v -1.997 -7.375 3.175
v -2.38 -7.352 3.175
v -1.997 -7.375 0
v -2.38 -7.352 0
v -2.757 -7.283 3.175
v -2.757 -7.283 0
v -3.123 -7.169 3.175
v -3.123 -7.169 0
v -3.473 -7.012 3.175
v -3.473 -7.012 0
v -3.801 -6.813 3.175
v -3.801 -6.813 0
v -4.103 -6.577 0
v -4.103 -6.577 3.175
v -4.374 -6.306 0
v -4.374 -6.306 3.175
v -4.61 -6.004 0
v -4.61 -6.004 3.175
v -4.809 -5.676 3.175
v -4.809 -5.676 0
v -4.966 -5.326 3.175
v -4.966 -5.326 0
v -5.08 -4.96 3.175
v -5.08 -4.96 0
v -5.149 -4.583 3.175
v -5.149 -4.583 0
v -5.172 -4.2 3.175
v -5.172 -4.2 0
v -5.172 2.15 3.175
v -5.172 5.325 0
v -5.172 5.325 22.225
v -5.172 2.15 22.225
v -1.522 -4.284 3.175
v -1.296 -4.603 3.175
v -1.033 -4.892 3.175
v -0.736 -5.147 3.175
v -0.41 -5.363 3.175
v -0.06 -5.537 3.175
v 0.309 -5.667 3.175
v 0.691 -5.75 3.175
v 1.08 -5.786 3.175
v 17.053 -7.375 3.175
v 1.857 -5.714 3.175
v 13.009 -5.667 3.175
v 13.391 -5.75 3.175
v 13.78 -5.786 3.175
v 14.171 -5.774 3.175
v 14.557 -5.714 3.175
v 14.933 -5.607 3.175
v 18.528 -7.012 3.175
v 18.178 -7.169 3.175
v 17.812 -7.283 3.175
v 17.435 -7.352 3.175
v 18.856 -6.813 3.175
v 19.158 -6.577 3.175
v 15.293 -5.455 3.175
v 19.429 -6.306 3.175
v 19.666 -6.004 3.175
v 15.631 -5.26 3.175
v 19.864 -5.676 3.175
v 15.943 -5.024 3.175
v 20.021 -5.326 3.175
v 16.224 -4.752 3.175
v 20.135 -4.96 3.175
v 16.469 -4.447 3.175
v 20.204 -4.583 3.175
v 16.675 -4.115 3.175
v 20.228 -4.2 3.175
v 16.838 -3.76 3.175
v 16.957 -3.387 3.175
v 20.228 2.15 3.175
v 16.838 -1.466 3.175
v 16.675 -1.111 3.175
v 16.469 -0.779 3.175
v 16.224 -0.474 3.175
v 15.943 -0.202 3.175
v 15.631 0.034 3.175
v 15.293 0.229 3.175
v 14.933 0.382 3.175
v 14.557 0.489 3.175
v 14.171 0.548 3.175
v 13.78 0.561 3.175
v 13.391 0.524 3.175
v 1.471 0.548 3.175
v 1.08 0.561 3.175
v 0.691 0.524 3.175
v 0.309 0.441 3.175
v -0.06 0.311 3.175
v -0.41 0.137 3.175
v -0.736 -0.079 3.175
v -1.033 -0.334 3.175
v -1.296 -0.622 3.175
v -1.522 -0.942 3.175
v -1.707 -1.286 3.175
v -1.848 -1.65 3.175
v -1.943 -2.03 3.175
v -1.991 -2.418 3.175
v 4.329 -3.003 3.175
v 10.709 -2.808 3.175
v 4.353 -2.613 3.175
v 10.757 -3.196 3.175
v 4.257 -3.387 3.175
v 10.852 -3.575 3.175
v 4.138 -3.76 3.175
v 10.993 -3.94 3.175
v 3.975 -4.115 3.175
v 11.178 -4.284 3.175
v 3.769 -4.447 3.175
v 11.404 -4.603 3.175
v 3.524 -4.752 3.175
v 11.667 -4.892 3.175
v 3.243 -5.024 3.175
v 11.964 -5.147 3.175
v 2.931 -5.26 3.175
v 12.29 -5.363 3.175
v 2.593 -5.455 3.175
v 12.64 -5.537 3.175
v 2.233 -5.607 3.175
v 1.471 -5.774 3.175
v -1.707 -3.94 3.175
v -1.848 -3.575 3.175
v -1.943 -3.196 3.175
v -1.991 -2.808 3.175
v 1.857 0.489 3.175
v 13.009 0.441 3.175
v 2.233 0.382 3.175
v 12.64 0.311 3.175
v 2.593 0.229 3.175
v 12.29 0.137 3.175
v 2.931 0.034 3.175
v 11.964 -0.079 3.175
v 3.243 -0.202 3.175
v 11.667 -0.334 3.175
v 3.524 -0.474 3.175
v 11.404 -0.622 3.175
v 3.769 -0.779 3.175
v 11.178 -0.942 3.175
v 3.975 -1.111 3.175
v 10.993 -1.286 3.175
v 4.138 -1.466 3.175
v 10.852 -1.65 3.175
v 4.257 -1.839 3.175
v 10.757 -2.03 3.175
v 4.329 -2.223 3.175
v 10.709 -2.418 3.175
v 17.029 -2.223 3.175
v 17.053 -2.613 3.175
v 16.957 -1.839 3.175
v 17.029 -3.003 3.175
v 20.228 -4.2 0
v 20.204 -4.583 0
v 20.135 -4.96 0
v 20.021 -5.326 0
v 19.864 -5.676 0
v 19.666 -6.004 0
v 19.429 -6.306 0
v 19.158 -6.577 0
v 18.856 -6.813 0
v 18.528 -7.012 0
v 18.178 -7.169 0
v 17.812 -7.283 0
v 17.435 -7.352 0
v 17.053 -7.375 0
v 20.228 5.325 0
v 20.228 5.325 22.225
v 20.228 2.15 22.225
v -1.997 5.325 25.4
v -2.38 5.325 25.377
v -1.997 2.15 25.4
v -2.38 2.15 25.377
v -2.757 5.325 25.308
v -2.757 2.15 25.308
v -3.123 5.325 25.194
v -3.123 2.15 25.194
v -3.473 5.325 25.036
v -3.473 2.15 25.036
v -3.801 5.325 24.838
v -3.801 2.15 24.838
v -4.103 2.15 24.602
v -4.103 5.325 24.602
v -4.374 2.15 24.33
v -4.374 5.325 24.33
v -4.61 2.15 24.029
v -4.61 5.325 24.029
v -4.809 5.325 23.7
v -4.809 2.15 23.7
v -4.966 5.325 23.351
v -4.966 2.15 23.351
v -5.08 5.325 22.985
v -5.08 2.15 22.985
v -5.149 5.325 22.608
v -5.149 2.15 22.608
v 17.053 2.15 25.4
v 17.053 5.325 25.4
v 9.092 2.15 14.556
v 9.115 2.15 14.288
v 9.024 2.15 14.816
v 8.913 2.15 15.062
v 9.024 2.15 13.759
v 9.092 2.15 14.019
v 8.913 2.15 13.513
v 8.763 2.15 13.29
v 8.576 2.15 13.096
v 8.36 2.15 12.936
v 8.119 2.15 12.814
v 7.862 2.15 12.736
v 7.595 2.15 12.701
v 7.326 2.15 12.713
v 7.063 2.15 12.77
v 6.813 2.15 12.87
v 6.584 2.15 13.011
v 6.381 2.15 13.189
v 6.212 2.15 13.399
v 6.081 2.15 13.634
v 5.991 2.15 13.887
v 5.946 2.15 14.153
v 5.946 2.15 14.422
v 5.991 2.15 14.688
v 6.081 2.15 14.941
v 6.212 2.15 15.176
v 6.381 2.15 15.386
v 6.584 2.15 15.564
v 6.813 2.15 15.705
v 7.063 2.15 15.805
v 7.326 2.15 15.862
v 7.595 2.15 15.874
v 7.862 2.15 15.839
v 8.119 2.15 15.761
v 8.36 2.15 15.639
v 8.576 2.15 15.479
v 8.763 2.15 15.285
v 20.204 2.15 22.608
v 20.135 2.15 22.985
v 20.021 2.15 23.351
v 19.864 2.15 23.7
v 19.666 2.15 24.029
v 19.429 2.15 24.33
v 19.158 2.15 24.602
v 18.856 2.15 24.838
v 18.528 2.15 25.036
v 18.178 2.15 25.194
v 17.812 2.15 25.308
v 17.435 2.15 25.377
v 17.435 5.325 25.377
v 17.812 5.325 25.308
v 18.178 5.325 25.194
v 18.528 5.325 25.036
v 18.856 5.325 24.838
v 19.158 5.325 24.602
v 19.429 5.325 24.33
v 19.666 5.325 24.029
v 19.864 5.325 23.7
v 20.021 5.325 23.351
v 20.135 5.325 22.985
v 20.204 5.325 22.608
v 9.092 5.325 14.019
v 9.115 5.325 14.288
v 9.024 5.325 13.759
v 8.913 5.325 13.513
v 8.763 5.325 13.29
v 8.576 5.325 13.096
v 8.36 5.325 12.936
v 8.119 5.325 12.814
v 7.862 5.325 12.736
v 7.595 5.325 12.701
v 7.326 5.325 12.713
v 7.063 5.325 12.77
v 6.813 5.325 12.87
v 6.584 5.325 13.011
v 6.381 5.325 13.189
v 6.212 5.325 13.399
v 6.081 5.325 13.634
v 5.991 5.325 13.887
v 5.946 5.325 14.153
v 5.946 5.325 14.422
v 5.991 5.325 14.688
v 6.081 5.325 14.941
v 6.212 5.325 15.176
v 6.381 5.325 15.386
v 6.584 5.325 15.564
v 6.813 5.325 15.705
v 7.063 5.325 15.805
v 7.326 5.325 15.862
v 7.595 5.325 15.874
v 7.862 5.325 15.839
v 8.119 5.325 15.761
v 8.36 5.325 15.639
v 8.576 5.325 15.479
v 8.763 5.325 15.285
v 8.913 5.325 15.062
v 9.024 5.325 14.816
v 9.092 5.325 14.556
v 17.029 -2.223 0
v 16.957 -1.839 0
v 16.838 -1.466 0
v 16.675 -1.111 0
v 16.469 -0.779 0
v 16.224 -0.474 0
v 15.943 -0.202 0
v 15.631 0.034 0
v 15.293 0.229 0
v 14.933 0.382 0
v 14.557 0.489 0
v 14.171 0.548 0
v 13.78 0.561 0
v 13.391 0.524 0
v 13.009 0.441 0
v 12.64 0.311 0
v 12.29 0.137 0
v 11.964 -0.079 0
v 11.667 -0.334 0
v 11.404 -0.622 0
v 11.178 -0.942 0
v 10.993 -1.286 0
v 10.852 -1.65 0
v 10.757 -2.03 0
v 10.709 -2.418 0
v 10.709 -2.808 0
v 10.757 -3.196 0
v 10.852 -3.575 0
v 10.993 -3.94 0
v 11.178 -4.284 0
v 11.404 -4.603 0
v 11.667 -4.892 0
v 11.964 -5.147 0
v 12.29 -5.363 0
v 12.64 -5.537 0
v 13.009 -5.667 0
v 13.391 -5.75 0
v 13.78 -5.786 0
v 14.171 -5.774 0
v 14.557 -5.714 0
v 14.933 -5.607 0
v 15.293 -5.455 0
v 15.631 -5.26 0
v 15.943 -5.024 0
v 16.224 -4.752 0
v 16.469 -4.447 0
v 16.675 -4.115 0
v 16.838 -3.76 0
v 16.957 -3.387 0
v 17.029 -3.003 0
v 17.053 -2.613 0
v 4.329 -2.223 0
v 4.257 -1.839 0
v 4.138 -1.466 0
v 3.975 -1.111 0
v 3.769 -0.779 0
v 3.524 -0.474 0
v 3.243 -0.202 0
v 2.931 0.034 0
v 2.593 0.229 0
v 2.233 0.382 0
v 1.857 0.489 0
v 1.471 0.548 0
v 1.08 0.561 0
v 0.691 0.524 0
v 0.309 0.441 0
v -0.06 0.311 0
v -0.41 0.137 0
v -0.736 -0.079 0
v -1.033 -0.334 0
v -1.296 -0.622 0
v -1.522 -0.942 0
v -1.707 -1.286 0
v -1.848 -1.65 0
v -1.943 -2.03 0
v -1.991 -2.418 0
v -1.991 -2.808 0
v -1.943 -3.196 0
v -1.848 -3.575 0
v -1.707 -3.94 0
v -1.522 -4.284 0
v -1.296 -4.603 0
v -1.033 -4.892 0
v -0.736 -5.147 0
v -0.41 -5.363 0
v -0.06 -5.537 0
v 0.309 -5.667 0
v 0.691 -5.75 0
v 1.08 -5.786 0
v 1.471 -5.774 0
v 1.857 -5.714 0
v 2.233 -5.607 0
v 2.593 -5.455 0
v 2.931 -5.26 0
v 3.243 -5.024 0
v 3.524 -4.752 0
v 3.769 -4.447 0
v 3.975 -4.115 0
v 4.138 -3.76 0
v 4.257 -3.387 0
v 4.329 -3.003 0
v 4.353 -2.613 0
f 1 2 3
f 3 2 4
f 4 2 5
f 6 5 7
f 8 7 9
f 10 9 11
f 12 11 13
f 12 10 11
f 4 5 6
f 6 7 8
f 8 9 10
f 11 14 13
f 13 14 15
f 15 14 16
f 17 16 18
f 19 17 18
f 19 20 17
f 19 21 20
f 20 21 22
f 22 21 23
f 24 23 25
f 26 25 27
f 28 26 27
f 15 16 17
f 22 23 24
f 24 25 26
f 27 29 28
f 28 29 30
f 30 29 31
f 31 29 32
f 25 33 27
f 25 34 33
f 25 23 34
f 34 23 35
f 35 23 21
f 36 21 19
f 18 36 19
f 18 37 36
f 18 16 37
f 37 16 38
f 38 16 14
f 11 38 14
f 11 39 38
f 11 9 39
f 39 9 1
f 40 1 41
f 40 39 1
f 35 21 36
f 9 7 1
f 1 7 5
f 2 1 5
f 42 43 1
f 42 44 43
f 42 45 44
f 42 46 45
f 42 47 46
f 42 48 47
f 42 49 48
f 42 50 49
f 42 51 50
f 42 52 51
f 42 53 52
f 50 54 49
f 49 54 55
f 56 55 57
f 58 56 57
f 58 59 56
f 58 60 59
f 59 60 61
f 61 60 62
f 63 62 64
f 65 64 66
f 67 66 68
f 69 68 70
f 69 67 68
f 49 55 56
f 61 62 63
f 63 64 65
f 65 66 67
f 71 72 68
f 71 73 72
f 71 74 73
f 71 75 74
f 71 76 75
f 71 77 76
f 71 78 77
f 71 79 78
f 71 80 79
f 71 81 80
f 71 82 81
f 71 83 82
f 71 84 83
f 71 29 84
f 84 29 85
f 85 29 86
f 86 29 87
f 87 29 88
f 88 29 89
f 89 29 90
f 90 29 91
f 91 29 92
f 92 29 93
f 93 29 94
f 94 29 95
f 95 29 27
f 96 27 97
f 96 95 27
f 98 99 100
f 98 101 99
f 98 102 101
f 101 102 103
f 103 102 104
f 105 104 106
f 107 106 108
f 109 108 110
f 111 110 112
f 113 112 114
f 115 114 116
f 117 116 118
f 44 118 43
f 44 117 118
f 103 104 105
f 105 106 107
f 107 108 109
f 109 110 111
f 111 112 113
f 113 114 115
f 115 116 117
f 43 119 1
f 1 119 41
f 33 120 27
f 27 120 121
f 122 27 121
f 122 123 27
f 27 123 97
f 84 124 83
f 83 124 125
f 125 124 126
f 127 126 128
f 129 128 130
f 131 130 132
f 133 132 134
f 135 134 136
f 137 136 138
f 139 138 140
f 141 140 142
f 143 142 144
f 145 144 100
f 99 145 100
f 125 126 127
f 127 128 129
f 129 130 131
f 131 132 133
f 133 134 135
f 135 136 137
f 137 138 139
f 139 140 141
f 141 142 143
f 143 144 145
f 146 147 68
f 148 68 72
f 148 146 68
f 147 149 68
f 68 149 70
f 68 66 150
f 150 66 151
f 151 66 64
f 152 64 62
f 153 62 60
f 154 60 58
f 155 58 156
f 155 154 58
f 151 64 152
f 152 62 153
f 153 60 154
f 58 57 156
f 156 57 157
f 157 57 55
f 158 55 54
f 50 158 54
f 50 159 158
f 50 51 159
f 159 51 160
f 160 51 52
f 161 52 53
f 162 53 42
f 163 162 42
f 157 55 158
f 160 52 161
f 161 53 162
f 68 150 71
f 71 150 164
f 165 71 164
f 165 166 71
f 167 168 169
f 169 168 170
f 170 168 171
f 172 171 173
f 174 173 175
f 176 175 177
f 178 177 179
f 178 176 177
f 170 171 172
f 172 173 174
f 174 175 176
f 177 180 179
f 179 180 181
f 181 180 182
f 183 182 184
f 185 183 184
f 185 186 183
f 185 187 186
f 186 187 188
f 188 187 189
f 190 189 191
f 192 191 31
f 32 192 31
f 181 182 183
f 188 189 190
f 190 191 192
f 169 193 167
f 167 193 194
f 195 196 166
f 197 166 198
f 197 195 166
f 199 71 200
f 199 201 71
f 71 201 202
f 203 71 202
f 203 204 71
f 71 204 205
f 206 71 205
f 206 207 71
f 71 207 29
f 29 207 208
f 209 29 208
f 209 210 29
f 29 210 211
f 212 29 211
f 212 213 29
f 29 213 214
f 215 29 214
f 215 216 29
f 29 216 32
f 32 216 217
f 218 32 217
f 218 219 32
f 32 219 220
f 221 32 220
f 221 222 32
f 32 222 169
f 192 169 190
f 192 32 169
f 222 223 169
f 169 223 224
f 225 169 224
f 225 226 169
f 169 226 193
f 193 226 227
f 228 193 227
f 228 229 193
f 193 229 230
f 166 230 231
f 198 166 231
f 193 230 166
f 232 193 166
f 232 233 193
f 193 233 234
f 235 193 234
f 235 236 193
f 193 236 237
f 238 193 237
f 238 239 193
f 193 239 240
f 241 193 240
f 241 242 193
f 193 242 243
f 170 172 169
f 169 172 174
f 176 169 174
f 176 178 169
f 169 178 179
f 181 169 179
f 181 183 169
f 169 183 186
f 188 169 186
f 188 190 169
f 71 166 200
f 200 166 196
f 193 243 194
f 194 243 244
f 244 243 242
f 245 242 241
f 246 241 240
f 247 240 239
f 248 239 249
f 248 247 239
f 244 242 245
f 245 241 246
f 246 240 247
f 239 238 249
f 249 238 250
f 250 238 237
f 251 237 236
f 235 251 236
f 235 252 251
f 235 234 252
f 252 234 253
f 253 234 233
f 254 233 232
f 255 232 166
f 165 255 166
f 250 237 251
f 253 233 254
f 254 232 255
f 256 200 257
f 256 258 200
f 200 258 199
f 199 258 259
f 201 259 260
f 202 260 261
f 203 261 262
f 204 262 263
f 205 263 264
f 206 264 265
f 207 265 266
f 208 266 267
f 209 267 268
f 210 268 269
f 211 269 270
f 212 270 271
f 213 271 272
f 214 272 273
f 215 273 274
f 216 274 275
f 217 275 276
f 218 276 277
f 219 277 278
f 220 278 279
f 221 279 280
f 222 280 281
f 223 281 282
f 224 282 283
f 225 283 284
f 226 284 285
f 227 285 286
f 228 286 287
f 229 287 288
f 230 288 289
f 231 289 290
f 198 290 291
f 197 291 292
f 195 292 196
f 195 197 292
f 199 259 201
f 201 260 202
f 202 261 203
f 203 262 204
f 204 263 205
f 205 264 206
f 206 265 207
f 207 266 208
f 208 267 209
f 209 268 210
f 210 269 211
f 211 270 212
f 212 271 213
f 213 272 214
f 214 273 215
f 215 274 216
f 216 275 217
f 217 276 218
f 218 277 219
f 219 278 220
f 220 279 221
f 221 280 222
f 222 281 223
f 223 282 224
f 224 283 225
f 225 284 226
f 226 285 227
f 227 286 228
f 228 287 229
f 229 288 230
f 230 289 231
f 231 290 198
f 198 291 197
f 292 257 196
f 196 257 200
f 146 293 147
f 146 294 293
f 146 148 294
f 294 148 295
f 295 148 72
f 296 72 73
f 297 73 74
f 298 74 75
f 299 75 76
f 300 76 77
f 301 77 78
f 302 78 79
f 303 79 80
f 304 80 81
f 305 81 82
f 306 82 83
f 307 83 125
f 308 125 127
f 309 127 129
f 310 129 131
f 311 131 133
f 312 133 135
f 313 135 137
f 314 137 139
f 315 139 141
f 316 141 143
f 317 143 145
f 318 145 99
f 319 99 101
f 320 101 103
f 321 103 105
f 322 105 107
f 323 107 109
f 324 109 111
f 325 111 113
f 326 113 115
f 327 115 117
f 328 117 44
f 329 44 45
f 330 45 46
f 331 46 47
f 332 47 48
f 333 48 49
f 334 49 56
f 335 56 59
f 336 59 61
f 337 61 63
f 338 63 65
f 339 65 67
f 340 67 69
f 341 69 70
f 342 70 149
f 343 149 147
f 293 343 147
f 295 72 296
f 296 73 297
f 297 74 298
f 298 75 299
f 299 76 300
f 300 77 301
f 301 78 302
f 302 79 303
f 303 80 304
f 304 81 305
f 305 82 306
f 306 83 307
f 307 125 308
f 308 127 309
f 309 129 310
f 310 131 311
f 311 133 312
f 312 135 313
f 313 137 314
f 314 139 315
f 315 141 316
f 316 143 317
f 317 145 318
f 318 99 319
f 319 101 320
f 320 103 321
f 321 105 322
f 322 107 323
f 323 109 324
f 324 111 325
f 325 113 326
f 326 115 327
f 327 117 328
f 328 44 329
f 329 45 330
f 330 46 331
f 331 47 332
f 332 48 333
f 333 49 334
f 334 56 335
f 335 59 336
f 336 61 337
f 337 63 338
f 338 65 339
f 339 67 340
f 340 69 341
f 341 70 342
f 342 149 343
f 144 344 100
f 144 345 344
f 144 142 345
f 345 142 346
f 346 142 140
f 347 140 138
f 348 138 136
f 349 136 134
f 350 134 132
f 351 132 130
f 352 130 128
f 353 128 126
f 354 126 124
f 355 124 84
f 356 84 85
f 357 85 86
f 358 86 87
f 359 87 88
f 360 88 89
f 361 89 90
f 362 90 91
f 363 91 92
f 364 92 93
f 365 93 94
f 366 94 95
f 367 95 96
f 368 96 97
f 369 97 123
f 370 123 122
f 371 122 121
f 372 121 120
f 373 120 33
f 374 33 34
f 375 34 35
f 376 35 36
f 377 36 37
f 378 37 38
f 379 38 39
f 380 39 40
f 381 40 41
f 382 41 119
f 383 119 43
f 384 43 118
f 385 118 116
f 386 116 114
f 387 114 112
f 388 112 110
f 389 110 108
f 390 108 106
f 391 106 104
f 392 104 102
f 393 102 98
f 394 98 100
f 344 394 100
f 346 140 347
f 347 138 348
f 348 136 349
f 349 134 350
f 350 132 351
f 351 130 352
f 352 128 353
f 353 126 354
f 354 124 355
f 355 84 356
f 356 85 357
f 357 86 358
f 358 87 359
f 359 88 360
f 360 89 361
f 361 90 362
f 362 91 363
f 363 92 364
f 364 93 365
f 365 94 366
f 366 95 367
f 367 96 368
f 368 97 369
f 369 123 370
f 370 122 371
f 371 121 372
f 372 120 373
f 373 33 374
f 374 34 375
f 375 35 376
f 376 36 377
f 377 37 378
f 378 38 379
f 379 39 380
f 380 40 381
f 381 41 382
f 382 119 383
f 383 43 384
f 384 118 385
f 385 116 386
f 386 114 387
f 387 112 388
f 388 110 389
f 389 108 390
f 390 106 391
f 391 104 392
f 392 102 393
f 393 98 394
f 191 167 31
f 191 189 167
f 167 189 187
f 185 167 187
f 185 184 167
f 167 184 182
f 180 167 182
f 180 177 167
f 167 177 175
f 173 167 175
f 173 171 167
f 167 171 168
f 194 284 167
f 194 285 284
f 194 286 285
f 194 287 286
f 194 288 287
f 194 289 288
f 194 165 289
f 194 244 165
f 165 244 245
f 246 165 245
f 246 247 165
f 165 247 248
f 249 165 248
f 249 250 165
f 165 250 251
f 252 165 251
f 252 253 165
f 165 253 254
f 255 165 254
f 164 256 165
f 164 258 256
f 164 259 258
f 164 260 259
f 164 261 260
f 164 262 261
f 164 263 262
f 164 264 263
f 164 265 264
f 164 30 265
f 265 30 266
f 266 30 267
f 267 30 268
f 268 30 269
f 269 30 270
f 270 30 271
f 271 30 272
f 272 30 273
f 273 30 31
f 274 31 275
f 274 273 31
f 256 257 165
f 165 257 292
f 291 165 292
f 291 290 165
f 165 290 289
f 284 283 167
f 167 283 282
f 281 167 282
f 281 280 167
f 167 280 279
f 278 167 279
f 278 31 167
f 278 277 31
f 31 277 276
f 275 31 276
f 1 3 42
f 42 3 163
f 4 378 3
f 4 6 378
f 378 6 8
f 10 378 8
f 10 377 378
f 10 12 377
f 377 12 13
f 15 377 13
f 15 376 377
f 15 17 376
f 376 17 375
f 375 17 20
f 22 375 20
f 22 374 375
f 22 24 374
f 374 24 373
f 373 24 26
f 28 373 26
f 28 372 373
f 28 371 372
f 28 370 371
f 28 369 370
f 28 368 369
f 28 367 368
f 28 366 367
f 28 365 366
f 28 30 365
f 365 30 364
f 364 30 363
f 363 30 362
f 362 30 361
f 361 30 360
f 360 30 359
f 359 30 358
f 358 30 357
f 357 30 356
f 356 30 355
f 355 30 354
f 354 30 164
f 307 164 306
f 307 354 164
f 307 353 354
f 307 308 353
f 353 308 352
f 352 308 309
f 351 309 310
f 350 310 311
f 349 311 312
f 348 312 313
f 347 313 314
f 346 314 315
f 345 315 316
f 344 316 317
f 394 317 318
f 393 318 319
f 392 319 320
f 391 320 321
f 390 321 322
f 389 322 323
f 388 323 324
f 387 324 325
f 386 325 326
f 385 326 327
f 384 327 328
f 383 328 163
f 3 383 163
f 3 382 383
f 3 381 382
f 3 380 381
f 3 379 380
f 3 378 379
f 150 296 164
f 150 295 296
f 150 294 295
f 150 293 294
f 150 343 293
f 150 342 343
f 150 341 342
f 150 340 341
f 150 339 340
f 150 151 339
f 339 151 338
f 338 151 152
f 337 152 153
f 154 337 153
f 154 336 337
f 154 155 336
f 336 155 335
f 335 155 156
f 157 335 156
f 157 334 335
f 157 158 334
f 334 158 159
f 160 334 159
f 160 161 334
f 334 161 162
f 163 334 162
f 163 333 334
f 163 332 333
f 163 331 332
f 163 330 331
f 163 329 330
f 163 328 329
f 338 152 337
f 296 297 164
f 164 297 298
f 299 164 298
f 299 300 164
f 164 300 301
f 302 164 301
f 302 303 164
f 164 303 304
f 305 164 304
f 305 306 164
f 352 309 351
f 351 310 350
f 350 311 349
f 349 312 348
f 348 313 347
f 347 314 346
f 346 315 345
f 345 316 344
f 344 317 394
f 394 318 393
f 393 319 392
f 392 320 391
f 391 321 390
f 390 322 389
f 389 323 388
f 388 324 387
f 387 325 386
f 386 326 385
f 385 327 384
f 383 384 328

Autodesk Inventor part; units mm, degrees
ref_plane "YZ Plane" through (0, 0, 0) normal (1, 0, 0) x (0, 1, 0)
ref_plane "XZ Plane" through (0, 0, 0) normal (0, 1, 0) x (-1, 0, 0)
ref_plane "XY Plane" through (0, 0, 0) normal (0, 0, 1) x (1, 0, 0)
sketch "Sketch1" plane through (0, 0, 0) normal (0, 0, 1) x (1, 0, 0)
  line L0 (-5.1724, -7.3755) -> (20.2276, -7.3755)
  line L1 (20.2276, -7.3755) -> (20.2276, 5.3245)
  line L2 (20.2276, 5.3245) -> (-5.1724, 5.3245)
  line L3 (-5.1724, 5.3245) -> (-5.1724, -7.3755)
  circle A0 centre (1.1776, -2.613) radius 3.175
  circle A1 centre (13.8776, -2.613) radius 3.175
  point P0 (0, 0)
  dimension "d0" = 25.4
  dimension "d1" = 12.7
  dimension "d2" = 6.35
  dimension "d3" = 6.35
  dimension "d5" = 6.35
  dimension "d6" = 6.35
  dimension "d13" = 4.7625
  dimension "d14" = 4.7625
extrude "Extrusion1" add sketch "Sketch1" along normal blind 3.175
sketch "Sketch2" plane through (0, 0, 3.175) normal (0, 0, 1) x (1, 0, 0)
  line L0 (20.2276, 5.3245) -> (20.2276, -7.3755) projected
  line L1 (-5.1724, 5.3245) -> (20.2276, 5.3245) projected
  line L2 (-5.1724, 5.3245) -> (20.2276, 5.3245)
  line L3 (20.2276, 5.3245) -> (20.2276, 2.1495)
  line L4 (20.2276, 2.1495) -> (-5.1724, 2.1495)
  line L5 (-5.1724, 2.1495) -> (-5.1724, 5.3245)
  point P0 (0, 0)
  dimension "d10" = 3.175
extrude "Extrusion2" add sketch "Sketch2" along normal blind 22.225
sketch "Sketch3" plane through (-5.1724, 2.1495, 3.175) normal (0, -1, 0) x (1, 0, 0)
  circle A0 centre (12.7, 11.1125) radius 1.5875
  point P0 (5.1724, -3.175)
  dimension "d15" = 3.175
extrude "Extrusion3" cut sketch "Sketch3" against normal blind 22.225
fillet "Fillet1" radius 3.175 4 edges at (20.2276, 3.737, 25.4) (-5.1724, 3.737, 25.4) (20.2276, -7.3755, 1.5875) (-5.1724, -7.3755, 1.5875)
equation "\"d3\" = d2"
equation "\"d14\" = d13"
properties part number "Shooter Curve Support"
